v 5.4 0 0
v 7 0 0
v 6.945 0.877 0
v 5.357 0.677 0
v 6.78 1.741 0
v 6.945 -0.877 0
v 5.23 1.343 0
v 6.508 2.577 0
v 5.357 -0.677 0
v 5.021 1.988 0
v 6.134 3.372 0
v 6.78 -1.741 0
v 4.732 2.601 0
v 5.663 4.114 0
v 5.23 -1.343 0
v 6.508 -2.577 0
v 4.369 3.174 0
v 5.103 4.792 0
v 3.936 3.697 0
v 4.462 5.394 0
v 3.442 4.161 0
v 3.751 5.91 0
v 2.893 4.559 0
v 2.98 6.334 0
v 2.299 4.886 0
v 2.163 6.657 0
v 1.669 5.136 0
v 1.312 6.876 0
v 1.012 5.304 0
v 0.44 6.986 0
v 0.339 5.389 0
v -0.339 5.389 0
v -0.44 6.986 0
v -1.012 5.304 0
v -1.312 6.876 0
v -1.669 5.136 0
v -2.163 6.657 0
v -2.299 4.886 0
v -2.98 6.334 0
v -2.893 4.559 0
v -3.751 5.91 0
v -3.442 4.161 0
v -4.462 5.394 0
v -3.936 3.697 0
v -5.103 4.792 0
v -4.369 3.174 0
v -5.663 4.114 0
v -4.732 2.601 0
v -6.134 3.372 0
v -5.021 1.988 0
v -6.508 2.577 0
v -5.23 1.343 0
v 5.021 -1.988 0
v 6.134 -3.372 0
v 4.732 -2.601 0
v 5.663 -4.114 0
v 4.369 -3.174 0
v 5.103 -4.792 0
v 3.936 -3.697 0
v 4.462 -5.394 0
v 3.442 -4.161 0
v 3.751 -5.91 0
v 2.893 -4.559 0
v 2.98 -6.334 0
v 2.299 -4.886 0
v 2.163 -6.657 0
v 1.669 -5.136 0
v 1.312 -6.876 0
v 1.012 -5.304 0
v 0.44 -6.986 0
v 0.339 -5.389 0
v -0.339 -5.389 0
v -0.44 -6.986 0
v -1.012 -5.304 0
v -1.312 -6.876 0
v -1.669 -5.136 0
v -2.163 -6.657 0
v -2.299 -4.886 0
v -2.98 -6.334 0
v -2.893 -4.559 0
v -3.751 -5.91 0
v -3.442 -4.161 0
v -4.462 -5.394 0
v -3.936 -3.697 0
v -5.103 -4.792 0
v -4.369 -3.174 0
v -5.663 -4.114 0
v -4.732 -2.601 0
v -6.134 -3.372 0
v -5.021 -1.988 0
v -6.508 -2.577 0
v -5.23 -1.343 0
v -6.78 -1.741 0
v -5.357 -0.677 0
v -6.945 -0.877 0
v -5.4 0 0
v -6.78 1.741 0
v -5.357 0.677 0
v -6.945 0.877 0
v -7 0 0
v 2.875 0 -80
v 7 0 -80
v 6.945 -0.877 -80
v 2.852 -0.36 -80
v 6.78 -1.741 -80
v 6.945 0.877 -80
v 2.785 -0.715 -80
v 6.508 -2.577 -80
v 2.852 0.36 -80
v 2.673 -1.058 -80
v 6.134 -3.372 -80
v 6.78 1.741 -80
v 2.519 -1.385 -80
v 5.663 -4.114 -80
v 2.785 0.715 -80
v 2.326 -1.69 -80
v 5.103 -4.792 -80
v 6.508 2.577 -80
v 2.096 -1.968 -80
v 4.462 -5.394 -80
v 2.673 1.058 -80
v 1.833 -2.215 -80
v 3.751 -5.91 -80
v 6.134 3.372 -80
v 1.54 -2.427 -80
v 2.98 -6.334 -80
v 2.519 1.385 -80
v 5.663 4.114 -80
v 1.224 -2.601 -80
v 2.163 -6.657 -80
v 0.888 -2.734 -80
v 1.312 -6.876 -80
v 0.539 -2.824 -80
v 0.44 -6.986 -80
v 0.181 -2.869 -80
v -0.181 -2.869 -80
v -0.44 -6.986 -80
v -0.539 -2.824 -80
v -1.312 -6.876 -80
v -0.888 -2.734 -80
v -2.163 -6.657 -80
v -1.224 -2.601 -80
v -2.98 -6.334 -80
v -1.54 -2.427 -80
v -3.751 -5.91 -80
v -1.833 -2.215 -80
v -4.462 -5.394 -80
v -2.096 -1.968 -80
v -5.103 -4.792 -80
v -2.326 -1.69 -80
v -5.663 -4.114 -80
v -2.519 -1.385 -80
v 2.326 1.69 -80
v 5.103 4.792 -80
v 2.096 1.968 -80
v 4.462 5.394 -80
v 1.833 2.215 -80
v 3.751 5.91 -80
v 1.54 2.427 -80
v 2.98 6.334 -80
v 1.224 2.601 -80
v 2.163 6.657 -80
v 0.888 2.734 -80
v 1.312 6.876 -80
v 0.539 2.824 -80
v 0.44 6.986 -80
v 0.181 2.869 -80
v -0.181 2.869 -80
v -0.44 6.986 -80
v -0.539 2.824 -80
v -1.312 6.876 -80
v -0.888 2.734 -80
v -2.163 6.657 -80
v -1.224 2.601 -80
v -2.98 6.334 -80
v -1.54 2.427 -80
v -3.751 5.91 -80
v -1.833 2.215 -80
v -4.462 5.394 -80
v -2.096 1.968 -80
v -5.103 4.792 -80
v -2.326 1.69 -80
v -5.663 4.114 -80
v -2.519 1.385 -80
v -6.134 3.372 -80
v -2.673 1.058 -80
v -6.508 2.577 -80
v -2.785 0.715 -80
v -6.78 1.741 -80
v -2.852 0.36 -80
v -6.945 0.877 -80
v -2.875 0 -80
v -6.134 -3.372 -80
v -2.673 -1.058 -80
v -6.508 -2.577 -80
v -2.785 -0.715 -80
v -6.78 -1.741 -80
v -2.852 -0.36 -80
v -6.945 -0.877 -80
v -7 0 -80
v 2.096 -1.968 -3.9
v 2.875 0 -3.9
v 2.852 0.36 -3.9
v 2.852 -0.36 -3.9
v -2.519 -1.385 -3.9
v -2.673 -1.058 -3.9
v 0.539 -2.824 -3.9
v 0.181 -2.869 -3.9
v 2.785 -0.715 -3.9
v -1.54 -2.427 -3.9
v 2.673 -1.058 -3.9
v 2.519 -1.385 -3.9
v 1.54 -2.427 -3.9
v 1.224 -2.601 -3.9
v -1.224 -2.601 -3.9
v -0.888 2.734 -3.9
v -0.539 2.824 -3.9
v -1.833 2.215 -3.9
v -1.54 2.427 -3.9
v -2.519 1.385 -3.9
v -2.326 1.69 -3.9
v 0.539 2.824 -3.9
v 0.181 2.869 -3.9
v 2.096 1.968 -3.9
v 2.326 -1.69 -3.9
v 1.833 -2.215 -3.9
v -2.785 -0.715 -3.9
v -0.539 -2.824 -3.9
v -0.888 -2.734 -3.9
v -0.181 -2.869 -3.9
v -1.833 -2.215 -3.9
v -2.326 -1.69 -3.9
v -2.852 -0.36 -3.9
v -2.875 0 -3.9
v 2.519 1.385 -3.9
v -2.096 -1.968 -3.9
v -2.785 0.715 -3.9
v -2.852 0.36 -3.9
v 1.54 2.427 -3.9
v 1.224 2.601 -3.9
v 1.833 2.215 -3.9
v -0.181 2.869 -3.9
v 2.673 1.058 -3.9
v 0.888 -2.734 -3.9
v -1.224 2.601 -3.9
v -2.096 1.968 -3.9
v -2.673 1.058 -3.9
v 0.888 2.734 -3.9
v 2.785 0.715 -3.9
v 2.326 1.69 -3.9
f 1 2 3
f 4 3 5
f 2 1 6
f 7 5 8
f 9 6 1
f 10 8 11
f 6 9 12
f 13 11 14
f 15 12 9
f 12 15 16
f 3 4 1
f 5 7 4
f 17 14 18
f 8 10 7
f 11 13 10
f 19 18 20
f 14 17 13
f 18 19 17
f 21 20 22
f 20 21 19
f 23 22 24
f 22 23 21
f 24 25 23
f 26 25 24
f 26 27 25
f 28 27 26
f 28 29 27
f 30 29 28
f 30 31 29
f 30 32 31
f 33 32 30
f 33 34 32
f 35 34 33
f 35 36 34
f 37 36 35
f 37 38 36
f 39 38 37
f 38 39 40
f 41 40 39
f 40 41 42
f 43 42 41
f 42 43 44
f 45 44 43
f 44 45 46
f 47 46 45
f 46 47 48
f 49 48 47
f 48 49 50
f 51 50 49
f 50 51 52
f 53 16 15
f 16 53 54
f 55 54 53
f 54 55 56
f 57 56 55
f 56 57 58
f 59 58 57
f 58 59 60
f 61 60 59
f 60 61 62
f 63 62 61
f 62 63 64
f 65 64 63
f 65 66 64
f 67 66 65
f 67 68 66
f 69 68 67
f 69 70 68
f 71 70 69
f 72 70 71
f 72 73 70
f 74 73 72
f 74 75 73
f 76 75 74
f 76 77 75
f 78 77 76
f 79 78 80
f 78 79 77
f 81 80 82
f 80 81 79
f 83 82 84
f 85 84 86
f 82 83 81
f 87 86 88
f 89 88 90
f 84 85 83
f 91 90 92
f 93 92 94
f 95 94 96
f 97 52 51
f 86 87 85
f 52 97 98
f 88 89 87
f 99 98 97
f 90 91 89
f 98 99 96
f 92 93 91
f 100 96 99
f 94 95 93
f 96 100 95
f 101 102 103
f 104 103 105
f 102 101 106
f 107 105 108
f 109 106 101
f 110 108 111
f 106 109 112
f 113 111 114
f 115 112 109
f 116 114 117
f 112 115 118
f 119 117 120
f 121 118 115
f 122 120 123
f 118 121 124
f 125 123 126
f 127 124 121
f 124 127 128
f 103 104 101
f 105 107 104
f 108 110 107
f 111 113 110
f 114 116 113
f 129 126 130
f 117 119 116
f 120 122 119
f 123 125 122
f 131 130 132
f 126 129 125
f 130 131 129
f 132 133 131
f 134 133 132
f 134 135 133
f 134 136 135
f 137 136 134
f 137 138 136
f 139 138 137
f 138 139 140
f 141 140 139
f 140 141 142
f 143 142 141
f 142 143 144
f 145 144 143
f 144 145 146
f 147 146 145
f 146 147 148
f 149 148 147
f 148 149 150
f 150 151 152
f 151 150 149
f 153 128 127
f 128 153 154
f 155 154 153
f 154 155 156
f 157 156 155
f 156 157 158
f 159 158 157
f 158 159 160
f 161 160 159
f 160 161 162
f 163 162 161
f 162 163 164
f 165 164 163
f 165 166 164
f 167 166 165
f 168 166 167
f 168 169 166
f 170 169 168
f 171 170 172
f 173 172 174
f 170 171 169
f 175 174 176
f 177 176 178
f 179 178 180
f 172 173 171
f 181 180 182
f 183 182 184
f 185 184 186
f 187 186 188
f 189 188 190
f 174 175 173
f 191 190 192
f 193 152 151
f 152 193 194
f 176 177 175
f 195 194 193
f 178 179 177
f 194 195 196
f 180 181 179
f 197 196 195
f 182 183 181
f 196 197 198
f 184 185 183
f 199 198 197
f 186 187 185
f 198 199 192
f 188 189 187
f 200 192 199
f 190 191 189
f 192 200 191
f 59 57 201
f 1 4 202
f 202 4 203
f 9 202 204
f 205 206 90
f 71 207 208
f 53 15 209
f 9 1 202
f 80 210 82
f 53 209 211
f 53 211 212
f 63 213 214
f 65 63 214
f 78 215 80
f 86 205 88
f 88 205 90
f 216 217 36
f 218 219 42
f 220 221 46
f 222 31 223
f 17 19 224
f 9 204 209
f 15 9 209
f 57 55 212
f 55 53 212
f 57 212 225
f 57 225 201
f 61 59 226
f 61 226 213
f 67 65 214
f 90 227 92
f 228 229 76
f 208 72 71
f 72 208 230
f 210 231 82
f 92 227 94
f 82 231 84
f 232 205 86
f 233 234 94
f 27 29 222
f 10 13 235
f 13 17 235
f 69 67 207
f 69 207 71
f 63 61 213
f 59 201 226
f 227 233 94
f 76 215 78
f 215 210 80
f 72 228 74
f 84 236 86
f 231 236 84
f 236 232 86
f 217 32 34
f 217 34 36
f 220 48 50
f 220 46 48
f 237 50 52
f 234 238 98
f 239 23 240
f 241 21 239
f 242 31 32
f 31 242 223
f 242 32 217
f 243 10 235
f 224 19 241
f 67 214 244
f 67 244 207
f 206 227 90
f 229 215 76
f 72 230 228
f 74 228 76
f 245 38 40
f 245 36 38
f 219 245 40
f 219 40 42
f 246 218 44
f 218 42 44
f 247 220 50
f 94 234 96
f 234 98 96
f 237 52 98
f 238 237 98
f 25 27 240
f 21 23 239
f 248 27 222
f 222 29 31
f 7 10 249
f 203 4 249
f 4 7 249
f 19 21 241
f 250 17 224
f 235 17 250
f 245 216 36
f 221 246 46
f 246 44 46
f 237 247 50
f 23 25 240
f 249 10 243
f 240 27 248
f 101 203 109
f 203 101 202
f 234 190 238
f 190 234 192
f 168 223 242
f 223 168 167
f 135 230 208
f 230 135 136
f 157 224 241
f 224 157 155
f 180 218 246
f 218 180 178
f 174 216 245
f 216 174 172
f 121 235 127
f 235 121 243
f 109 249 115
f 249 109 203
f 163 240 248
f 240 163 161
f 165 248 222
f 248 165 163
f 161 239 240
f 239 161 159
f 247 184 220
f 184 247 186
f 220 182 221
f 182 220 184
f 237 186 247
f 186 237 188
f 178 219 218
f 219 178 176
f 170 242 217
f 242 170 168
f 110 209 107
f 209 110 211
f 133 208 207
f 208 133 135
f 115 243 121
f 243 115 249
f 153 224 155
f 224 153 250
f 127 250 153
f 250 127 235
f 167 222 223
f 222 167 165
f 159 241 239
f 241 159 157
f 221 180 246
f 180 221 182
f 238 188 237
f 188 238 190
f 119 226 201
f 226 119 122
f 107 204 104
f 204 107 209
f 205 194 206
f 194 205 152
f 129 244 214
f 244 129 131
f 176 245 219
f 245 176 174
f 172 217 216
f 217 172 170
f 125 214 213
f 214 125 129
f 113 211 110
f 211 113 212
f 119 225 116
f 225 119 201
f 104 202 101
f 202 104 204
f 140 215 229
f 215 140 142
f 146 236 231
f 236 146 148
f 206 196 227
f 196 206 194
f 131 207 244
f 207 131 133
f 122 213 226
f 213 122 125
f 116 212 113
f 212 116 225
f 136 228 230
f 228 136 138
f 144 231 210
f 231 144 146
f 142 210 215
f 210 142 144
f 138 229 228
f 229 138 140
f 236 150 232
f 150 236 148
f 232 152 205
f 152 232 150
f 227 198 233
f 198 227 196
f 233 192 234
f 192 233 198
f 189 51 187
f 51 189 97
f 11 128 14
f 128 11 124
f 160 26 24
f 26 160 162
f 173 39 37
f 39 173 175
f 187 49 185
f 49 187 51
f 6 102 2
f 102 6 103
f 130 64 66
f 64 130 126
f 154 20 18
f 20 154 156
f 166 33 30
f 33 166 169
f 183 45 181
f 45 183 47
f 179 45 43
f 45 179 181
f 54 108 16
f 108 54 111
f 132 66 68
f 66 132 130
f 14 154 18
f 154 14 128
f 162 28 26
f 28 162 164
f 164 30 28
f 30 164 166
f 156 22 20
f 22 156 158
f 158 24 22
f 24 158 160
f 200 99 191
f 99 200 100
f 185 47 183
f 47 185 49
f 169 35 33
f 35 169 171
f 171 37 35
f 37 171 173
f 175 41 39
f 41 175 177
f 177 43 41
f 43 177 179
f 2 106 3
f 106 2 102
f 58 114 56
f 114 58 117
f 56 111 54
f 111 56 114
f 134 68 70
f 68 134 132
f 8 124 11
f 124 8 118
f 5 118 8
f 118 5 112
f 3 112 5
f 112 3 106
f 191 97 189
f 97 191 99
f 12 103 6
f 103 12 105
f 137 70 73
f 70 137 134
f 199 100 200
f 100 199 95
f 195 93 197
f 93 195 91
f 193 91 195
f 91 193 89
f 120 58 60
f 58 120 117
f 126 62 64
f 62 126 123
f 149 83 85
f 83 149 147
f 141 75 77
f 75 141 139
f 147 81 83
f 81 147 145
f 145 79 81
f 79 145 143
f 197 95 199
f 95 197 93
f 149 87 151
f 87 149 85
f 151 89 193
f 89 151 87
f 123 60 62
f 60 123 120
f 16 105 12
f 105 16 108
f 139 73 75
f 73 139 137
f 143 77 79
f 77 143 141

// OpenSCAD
$fn = 50;


difference() {
	union() {
		translate(v = [0, 0, -80.0000000000]) {
			cylinder(h = 80, r = 7.0000000000);
		}
		cylinder(h = 0, r = 17.0000000000);
	}
	union() {
		translate(v = [0, 0, 0]) {
			rotate(a = [0, 0, 0]) {
				difference() {
					union() {
						#translate(v = [0, 0, -80.0000000000]) {
							cylinder(h = 80, r = 2.6000000000);
						}
						#translate(v = [0, 0, -3.9000000000]) {
							cylinder(h = 3.9000000000, r1 = 2.8750000000, r2 = 5.4000000000);
						}
						#translate(v = [0, 0, -80.0000000000]) {
							cylinder(h = 80, r = 2.8750000000);
						}
						#translate(v = [0, 0, -80.0000000000]) {
							cylinder(h = 80, r = 2.6000000000);
						}
					}
					union();
				}
			}
		}
	}
}
